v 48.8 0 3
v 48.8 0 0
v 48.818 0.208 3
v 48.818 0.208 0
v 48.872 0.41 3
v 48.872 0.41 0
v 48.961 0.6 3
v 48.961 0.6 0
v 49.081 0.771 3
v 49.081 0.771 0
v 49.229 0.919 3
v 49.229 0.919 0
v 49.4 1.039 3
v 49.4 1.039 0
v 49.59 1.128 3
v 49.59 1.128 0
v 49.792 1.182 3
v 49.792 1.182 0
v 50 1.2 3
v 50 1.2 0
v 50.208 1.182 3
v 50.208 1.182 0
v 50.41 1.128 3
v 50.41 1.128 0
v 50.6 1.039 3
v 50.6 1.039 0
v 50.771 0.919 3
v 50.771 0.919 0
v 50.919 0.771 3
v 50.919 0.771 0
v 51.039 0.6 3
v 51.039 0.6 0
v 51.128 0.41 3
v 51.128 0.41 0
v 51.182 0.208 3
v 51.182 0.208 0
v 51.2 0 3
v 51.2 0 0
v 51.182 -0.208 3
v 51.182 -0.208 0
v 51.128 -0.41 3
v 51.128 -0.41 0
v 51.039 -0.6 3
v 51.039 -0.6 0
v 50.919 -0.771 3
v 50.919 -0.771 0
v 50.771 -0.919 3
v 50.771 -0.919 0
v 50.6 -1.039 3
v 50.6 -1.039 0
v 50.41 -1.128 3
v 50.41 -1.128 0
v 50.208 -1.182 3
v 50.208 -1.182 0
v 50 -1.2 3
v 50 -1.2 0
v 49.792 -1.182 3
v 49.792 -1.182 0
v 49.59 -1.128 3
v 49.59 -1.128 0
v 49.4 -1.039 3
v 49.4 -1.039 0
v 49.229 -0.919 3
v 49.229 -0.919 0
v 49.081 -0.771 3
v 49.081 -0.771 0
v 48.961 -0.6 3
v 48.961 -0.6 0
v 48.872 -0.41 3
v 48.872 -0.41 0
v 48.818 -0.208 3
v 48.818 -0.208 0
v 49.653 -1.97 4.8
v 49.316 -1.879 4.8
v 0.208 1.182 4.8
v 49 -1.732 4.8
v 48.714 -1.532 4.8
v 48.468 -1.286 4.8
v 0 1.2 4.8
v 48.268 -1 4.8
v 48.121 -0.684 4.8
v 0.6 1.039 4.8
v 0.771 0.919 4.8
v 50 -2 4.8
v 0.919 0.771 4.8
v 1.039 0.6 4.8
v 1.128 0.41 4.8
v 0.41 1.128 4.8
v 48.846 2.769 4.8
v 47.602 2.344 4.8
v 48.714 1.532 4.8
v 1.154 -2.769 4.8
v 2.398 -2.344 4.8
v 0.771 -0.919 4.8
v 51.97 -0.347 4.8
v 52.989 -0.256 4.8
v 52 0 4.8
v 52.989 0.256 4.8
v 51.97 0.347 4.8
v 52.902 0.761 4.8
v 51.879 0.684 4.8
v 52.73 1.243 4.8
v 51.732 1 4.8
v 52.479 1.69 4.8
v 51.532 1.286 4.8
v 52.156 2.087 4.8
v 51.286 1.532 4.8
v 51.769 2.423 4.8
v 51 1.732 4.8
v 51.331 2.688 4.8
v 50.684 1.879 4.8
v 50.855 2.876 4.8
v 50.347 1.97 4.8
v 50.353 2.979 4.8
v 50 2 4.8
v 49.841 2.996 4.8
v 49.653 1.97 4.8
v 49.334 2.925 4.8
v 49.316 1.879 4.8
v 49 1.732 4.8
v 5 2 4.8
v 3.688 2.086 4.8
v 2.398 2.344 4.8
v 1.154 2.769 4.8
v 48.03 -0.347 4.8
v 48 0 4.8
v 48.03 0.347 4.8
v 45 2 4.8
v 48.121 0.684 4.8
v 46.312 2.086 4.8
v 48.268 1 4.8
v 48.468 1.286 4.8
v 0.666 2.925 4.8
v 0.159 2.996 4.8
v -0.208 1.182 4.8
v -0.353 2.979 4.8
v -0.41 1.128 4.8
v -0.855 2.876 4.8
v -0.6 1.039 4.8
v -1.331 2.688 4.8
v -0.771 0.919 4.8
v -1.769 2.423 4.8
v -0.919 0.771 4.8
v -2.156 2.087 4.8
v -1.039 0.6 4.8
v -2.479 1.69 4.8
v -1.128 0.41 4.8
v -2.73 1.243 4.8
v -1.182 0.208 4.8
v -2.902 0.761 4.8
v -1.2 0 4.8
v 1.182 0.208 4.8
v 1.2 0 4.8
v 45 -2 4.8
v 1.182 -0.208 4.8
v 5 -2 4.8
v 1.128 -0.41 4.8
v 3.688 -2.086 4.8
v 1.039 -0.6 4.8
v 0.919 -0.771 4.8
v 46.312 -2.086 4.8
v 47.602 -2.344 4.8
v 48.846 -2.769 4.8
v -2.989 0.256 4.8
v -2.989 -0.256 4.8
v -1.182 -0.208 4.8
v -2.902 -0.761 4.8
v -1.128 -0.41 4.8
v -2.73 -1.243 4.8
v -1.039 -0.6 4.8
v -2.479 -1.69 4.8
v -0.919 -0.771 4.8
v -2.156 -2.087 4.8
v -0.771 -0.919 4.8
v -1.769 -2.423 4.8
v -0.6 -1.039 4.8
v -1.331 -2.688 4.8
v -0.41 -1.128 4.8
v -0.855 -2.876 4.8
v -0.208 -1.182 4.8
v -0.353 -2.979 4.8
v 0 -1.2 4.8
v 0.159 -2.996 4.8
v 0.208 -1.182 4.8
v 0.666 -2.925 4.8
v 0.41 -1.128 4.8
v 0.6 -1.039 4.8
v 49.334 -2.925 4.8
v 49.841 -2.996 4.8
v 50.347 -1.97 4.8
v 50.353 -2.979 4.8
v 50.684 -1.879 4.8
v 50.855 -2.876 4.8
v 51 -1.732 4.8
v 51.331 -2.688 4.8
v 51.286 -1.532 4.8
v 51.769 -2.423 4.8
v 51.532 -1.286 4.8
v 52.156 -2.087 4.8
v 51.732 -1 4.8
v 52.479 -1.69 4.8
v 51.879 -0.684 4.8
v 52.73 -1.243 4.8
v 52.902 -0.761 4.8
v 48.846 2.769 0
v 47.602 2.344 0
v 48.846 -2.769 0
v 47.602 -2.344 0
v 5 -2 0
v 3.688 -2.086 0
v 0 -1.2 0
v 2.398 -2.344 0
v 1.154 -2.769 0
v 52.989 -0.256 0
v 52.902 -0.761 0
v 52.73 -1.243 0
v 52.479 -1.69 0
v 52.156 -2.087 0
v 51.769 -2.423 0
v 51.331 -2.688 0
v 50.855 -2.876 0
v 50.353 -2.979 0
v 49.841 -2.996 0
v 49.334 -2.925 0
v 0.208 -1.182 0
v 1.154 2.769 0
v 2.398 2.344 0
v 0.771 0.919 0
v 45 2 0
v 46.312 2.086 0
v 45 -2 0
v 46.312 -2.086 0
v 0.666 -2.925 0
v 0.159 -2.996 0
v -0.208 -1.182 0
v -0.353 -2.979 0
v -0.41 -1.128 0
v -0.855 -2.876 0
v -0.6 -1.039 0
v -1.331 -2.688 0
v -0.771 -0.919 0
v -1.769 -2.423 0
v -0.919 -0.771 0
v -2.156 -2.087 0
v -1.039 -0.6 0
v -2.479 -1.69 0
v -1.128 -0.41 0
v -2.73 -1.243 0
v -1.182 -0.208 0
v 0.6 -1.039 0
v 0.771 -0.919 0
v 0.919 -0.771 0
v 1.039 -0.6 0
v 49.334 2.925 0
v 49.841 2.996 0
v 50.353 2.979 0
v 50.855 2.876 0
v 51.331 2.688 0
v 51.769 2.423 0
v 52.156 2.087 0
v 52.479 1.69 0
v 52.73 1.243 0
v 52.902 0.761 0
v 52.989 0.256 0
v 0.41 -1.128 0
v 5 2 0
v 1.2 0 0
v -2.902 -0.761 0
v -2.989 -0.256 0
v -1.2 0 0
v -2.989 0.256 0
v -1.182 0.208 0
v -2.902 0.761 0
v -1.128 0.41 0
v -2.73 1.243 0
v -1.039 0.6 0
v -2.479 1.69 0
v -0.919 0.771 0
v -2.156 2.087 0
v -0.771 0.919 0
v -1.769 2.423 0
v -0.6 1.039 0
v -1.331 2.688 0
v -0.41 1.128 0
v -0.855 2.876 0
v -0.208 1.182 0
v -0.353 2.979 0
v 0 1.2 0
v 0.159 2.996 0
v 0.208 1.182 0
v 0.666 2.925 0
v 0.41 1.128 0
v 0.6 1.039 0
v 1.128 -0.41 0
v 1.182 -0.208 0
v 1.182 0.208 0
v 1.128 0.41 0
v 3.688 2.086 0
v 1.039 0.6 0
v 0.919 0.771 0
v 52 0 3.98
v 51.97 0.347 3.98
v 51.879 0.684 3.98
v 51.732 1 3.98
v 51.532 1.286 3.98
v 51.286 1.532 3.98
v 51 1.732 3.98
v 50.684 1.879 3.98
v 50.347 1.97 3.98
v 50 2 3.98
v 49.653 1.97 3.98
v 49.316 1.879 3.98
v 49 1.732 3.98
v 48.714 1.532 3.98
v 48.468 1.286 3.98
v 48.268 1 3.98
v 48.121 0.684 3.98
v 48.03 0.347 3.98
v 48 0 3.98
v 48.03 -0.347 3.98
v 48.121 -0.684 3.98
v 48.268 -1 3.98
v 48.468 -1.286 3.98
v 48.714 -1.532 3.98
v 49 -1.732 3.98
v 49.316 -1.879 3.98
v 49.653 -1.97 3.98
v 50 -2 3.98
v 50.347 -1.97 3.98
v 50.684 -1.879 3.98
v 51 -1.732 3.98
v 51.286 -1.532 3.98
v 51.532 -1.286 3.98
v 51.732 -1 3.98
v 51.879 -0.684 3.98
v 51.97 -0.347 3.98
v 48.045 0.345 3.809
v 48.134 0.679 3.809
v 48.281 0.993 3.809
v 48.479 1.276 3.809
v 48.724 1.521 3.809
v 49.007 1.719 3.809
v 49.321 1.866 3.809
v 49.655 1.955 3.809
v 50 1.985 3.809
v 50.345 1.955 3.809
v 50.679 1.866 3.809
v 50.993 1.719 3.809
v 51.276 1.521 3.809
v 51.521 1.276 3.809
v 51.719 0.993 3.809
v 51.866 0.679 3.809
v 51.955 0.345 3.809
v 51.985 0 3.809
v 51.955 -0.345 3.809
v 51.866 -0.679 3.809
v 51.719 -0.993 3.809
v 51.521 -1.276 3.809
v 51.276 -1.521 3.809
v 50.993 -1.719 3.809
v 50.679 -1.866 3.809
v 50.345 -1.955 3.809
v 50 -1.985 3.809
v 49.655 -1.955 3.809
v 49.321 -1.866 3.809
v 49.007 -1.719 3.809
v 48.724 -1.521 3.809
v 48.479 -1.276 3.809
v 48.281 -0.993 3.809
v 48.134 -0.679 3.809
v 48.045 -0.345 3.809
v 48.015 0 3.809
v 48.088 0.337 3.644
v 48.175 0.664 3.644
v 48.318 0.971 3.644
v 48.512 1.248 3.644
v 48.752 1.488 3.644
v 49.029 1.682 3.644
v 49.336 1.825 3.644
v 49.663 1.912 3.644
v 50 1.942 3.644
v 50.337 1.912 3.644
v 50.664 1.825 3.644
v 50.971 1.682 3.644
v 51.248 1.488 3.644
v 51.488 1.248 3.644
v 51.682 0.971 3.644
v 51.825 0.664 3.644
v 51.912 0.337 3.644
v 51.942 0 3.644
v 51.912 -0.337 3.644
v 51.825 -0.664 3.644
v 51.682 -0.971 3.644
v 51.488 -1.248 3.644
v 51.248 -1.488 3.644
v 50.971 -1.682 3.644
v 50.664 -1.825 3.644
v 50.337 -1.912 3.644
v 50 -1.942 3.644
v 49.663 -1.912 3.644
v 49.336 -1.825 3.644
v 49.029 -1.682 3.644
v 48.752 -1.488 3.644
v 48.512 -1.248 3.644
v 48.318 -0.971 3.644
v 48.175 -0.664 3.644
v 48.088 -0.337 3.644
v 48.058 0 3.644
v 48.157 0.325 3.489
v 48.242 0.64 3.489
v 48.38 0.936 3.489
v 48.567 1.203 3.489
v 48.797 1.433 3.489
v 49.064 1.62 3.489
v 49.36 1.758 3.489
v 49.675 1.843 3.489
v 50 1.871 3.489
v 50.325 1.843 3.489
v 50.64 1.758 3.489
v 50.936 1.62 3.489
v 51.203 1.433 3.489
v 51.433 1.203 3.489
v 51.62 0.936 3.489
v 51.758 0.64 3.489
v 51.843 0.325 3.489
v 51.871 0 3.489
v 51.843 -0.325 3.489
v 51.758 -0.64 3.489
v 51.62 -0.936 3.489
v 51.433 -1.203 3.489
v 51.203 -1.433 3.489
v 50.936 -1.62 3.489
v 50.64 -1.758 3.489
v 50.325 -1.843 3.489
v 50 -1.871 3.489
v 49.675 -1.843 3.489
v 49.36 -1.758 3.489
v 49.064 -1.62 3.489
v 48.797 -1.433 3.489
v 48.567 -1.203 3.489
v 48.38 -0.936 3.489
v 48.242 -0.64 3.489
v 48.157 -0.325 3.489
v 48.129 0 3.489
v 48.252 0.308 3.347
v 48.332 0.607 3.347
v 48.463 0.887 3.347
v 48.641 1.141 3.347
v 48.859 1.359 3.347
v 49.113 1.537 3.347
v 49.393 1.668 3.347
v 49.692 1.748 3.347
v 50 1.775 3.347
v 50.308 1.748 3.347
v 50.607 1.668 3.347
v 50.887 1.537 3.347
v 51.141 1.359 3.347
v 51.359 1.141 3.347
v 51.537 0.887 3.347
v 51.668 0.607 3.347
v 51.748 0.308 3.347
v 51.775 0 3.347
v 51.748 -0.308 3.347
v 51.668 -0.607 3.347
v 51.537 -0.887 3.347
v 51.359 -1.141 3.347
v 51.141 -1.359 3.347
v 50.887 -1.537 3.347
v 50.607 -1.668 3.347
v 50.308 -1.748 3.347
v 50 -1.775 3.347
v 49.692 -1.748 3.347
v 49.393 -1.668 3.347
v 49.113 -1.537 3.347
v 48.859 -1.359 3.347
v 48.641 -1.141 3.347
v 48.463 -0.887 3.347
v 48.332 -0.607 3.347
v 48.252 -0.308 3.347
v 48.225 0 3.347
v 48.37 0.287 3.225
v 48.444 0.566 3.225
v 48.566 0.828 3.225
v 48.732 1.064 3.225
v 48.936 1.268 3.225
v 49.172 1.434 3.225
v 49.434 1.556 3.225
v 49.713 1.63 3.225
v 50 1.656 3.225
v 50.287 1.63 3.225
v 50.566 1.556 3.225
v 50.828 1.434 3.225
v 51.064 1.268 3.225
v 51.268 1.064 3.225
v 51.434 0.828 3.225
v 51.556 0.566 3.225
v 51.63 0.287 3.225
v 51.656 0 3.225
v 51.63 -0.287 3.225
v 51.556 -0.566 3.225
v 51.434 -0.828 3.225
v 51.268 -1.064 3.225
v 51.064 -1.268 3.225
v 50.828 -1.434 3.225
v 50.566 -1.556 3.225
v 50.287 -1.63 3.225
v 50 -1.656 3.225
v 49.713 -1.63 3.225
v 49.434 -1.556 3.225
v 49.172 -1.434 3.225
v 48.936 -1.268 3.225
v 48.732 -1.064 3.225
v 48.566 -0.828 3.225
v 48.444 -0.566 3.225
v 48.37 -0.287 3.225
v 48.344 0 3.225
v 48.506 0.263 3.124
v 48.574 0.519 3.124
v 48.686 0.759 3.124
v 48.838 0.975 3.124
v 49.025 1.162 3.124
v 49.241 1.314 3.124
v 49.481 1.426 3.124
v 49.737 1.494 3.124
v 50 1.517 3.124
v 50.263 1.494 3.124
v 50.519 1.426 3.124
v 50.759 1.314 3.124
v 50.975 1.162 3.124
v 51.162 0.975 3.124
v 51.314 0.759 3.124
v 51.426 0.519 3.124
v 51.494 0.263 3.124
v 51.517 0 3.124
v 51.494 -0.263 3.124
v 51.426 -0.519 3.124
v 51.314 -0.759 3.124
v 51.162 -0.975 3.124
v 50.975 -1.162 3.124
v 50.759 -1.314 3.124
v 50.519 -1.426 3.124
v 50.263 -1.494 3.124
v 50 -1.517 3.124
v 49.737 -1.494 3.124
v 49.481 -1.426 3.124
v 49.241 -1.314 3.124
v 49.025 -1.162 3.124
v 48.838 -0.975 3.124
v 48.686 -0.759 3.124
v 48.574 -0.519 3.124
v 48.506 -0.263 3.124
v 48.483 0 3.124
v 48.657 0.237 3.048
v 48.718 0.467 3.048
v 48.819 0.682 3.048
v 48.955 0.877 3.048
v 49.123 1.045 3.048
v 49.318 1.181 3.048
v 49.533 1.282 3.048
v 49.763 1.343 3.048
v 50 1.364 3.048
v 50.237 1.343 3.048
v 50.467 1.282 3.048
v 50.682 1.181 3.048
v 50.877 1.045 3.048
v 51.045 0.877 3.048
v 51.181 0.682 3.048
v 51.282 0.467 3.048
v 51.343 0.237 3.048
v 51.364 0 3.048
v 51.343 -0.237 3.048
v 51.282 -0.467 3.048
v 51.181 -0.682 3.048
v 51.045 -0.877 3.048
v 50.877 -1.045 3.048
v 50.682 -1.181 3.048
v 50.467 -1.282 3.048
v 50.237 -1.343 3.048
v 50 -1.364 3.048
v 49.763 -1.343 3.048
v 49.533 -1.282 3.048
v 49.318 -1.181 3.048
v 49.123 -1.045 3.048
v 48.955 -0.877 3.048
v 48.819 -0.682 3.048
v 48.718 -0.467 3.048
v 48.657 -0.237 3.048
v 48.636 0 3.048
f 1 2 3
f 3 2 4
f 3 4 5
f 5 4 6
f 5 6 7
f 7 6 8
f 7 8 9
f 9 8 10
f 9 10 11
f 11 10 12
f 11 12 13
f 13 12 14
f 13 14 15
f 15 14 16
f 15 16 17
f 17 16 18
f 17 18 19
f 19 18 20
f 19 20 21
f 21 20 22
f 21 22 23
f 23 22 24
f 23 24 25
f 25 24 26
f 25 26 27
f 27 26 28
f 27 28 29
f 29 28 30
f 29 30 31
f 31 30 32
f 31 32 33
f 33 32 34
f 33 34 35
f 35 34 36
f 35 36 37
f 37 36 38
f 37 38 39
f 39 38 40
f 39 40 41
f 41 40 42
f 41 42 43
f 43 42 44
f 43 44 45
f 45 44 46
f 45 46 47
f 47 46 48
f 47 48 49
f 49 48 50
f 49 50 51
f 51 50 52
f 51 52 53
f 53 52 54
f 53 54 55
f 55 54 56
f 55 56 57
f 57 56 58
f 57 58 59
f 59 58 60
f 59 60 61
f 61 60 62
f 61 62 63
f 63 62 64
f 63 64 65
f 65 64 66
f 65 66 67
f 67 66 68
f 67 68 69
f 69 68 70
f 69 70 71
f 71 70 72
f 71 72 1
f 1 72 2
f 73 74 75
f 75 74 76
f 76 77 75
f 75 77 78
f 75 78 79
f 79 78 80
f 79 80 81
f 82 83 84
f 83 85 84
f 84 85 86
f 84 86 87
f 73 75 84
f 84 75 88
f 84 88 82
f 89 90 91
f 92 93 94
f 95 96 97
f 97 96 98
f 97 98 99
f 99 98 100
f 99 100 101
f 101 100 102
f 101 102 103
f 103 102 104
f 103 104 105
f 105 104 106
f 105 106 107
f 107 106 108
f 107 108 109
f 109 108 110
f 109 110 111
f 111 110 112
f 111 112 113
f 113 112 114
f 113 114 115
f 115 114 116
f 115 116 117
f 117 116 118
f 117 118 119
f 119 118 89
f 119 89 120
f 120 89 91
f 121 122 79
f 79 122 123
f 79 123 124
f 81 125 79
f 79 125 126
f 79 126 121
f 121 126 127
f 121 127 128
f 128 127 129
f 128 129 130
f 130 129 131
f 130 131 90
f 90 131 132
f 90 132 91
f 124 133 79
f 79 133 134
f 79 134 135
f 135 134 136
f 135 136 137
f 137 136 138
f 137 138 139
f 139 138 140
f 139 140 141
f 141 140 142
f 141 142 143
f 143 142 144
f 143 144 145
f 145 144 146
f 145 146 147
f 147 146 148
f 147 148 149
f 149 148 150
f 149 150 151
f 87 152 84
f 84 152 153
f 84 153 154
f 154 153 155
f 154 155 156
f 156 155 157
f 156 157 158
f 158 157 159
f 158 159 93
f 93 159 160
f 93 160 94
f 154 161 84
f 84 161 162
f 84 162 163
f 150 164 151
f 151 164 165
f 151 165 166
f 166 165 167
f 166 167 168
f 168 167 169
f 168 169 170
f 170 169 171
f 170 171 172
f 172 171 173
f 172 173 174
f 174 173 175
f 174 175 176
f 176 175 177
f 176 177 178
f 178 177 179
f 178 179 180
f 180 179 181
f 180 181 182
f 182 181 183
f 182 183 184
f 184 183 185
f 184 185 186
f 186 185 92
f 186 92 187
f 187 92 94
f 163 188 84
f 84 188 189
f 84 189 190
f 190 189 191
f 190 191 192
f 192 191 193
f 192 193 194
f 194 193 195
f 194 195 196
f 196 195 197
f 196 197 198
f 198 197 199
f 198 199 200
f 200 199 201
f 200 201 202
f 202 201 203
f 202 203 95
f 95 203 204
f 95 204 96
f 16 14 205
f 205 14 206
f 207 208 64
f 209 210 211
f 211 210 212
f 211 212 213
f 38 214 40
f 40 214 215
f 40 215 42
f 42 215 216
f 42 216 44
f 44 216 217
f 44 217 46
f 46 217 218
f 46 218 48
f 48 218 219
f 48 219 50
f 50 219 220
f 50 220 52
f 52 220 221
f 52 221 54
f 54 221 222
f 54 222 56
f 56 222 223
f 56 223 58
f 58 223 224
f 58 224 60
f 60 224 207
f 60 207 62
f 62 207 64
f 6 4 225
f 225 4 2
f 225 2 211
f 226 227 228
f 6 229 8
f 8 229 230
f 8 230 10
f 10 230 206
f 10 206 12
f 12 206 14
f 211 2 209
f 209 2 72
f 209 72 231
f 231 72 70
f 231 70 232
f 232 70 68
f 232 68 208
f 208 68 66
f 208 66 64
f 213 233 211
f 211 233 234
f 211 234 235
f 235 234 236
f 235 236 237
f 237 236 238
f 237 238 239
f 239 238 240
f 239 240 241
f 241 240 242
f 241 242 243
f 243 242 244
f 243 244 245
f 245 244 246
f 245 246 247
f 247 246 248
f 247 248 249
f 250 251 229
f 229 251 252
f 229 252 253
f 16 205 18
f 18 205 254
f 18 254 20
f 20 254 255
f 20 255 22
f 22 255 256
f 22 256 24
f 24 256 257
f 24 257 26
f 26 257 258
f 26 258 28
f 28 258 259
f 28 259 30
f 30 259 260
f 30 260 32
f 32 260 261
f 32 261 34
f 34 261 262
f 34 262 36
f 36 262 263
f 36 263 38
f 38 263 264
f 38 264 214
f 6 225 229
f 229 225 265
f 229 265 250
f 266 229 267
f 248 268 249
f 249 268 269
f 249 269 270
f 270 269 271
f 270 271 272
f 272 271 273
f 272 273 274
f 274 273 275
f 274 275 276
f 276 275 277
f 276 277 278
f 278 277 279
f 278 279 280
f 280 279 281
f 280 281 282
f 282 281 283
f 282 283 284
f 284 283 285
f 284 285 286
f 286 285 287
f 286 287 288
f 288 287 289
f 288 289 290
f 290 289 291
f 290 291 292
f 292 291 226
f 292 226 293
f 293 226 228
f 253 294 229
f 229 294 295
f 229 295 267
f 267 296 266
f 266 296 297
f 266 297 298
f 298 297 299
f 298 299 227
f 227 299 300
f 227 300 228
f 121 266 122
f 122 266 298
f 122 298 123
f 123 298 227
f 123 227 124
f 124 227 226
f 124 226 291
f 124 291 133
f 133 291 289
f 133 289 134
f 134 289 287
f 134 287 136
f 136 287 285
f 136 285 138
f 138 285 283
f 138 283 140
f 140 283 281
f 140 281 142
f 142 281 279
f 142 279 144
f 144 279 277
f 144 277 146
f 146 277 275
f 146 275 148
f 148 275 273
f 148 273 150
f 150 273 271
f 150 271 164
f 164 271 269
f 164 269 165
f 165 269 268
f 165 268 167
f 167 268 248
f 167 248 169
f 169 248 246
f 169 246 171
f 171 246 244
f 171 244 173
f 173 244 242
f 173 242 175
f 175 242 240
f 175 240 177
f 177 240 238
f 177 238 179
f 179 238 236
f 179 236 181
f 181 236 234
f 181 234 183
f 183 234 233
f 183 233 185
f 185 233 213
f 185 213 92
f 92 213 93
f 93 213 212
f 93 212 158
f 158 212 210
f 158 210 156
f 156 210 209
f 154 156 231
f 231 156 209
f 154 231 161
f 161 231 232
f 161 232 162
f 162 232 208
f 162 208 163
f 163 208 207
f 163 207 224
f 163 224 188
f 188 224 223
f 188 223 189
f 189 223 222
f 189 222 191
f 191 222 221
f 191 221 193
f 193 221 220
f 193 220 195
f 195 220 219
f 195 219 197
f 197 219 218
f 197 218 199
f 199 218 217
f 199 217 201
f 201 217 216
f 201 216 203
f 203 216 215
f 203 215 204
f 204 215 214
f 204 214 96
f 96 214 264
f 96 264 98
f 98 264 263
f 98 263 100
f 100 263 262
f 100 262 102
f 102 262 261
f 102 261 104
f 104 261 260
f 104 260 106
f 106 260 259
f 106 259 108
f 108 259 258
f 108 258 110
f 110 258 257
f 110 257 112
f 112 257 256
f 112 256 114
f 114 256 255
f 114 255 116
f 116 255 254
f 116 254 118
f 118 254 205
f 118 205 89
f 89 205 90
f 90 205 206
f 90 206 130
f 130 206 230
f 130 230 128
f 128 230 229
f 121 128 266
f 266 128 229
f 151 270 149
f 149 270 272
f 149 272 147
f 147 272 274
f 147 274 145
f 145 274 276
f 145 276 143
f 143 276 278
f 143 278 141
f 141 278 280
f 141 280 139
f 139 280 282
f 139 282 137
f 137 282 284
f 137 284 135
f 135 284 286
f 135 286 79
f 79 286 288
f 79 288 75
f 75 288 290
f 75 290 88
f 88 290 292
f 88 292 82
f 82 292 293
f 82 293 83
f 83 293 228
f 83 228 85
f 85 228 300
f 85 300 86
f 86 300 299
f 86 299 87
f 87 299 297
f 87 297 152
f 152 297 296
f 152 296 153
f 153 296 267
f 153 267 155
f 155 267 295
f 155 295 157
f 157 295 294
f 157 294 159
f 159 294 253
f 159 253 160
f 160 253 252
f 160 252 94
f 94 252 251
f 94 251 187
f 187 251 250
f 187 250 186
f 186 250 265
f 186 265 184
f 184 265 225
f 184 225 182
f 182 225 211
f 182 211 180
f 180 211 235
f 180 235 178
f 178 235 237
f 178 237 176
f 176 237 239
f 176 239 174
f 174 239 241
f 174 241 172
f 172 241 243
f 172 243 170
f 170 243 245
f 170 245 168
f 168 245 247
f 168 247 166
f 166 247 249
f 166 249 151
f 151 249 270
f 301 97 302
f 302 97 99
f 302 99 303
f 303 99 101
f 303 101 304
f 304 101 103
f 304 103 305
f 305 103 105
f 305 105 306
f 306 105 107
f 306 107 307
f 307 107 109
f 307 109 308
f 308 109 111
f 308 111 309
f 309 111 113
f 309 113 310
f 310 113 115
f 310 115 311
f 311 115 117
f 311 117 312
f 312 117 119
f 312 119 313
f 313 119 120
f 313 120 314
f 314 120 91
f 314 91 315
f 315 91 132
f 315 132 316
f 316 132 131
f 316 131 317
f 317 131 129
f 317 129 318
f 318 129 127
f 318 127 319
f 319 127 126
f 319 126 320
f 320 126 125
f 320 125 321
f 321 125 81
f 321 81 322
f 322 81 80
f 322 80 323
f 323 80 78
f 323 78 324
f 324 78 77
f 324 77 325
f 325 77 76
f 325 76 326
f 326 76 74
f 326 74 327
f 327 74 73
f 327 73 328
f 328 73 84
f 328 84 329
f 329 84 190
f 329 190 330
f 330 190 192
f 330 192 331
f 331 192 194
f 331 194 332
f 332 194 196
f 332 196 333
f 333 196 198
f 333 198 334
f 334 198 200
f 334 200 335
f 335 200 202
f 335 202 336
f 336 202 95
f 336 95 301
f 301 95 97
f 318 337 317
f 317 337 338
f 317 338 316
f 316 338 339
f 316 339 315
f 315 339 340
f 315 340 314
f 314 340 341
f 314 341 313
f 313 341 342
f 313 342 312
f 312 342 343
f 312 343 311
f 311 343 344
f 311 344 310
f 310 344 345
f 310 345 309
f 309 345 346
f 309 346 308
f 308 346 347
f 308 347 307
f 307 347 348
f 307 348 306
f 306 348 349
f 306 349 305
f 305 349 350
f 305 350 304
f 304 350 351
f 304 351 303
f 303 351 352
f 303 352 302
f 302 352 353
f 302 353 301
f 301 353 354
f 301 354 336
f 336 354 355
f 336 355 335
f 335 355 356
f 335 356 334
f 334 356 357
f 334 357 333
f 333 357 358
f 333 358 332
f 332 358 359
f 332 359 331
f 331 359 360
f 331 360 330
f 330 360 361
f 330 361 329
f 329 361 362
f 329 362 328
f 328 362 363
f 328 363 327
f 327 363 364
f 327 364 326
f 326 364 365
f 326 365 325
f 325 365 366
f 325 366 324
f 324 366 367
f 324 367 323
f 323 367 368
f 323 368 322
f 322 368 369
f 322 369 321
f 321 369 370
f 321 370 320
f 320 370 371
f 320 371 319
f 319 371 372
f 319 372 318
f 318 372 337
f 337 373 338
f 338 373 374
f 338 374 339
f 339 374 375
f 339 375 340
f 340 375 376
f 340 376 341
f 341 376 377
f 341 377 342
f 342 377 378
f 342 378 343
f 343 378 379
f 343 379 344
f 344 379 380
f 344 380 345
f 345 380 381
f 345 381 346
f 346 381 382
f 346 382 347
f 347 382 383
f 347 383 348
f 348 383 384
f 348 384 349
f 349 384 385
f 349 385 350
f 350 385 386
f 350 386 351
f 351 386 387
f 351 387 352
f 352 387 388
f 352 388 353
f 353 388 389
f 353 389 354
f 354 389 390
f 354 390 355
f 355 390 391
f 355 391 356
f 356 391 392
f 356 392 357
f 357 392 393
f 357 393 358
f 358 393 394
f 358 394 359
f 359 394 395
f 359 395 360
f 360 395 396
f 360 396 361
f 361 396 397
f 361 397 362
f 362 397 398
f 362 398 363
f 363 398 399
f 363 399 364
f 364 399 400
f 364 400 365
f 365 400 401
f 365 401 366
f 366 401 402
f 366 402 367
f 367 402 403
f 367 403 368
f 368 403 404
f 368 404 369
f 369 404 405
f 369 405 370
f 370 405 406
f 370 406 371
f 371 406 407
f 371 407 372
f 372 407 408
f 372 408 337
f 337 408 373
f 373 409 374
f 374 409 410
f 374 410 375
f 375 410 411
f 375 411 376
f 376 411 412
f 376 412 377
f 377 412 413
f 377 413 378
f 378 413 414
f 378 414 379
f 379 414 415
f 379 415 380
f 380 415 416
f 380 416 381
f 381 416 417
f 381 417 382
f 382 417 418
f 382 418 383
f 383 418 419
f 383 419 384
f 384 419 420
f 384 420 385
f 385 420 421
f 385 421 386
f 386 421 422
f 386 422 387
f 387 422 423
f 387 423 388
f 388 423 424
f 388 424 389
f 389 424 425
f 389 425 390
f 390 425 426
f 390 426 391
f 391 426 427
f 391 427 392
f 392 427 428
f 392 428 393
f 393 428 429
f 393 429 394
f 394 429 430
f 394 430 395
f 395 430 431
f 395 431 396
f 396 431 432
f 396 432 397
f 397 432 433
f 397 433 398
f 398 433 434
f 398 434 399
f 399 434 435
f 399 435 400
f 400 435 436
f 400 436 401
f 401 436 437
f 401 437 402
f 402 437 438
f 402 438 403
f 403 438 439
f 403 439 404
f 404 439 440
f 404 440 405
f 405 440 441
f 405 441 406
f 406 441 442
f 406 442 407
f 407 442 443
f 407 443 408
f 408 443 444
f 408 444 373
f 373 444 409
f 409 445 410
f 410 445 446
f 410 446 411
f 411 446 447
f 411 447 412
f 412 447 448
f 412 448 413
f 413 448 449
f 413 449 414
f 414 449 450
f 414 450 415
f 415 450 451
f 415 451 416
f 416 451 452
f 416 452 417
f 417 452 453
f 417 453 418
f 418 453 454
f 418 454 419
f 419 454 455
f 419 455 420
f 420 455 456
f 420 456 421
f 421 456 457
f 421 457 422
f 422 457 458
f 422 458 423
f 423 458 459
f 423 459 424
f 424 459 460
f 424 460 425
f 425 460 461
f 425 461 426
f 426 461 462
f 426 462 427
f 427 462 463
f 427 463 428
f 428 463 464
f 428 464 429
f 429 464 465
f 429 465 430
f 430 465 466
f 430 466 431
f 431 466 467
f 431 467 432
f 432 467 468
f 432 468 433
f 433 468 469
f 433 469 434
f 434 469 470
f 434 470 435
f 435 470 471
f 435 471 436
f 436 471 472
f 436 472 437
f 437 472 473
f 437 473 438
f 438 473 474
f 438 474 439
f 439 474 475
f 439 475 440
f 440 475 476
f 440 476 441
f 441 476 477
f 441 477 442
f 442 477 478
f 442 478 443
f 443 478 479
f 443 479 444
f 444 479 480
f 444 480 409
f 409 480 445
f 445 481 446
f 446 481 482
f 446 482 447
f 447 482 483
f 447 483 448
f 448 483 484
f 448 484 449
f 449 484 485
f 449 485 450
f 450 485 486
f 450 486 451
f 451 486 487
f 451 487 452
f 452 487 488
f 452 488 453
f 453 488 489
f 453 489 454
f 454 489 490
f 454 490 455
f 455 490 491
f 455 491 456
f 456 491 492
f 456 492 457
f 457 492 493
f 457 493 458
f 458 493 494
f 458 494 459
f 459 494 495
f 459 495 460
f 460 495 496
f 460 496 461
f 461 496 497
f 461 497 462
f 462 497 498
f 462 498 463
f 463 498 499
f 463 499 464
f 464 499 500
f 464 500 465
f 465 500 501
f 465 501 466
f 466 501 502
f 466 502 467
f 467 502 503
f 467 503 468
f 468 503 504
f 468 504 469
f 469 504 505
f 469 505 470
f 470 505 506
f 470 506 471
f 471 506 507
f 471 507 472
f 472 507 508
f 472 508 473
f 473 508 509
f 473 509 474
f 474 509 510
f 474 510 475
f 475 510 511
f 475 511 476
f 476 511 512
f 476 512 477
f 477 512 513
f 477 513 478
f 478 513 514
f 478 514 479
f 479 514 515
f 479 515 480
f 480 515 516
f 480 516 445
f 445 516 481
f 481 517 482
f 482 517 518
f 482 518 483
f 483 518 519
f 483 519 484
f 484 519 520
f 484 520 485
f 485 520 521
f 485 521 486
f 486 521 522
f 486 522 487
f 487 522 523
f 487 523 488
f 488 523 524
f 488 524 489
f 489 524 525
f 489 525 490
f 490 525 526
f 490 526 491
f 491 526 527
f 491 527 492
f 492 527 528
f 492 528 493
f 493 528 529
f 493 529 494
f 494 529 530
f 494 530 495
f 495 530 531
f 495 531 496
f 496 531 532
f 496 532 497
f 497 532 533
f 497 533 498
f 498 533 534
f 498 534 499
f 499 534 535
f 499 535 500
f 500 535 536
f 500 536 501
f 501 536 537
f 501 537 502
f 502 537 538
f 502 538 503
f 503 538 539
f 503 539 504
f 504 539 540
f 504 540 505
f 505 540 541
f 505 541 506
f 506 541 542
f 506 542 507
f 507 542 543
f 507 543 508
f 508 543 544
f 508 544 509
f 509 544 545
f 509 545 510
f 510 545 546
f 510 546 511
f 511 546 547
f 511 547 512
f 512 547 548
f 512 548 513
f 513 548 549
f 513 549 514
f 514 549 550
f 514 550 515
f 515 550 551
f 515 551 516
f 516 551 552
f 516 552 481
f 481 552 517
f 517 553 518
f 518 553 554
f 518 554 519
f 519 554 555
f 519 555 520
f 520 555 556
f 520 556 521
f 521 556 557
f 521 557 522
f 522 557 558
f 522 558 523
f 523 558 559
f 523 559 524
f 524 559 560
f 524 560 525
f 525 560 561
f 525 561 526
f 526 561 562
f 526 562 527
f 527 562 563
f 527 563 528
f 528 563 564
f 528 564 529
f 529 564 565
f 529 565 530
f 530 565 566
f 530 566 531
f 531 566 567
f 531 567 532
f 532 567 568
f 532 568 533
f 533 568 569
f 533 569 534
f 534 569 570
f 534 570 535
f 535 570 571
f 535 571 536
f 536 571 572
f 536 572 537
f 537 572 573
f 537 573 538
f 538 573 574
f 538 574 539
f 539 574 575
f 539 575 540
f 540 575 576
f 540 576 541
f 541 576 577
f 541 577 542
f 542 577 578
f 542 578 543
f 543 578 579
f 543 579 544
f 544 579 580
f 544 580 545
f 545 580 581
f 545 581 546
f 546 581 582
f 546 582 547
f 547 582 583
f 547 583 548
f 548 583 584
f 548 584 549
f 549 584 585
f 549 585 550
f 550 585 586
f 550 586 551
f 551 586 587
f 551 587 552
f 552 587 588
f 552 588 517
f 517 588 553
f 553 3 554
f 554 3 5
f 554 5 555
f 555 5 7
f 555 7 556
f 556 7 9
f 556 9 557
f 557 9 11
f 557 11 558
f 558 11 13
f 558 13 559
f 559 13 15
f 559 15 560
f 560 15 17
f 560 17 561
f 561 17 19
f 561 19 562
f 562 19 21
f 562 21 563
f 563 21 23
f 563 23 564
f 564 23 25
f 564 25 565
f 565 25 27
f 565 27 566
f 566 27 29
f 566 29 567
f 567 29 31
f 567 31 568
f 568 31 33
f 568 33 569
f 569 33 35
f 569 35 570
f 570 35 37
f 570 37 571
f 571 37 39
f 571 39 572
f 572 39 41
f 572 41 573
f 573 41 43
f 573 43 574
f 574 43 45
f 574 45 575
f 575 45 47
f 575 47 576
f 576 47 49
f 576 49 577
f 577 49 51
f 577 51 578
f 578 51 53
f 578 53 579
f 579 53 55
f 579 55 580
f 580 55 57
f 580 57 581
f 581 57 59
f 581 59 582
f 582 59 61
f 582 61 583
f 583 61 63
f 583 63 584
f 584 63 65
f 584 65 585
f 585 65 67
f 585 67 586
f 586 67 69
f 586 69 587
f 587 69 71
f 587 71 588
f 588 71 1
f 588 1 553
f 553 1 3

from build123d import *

# Parameters (mm, degrees)
SKETCH1_R           = 1.2
BOSS_EXTRUDE1_DEPTH = 4.8
SKETCH2_R           = 2
CUT_EXTRUDE1_DEPTH  = 1.8
FILLET1_R           = 1


with BuildPart() as part:
    # Sketch1 → Boss-Extrude1 (new body)
    with BuildSketch(Plane.XY):
        with BuildLine():
            Line((5, -2), (45, -2))
            ThreePointArc((45, -2), (46.961161351, -2.194193243), (48.846153846, -2.769230769))
            ThreePointArc((48.846153846, -2.769230769), (53, 0), (48.846153846, 2.769230769))
            ThreePointArc((48.846153846, 2.769230769), (46.961161351, 2.194193243), (45, 2))
            Line((45, 2), (5, 2))
            ThreePointArc((5, 2), (3.038838649, 2.194193243), (1.153846154, 2.769230769))
            ThreePointArc((1.153846154, 2.769230769), (-3, 0), (1.153846154, -2.769230769))
            ThreePointArc((1.153846154, -2.769230769), (3.038838649, -2.194193243), (5, -2))
        make_face()
        Circle(SKETCH1_R, mode=Mode.SUBTRACT)
        with Locations((50, 0)):
            Circle(SKETCH1_R, mode=Mode.SUBTRACT)
    extrude(amount=BOSS_EXTRUDE1_DEPTH)

    # Sketch2 → Cut-Extrude1 (cut)
    with BuildSketch(Plane.XY.offset(4.8)):
        with Locations((50, 0)):
            Circle(SKETCH2_R)
    extrude(amount=-CUT_EXTRUDE1_DEPTH, mode=Mode.SUBTRACT)

    # Fillet1
    # the kernel refuses this fillet: 1 mm, written as the material it adds along each edge
    with BuildSketch(Plane(origin=(50, 0, 3), x_dir=(1, 0, 0), z_dir=(0, -1, 0))) as fillet1_piece_1:
        with BuildLine():
            CenterArc((1, 0.979795897), FILLET1_R, 281.536959033, 78.463040967)
            Line((1.2, 0), (1.204, -0.019595918))
            ThreePointArc((1.204, -0.019595918), (1.6, -0.02), (2, -0.02))
            Line((2, -0.02), (2.02, 0))
            Line((2.02, 0), (2.02, 0.979795897))
            Line((2.02, 0.979795897), (2, 0.979795897))
        make_face()
    revolve(axis=Axis((50, 0, 3), (0, 0, 1)))


solid = part.part
